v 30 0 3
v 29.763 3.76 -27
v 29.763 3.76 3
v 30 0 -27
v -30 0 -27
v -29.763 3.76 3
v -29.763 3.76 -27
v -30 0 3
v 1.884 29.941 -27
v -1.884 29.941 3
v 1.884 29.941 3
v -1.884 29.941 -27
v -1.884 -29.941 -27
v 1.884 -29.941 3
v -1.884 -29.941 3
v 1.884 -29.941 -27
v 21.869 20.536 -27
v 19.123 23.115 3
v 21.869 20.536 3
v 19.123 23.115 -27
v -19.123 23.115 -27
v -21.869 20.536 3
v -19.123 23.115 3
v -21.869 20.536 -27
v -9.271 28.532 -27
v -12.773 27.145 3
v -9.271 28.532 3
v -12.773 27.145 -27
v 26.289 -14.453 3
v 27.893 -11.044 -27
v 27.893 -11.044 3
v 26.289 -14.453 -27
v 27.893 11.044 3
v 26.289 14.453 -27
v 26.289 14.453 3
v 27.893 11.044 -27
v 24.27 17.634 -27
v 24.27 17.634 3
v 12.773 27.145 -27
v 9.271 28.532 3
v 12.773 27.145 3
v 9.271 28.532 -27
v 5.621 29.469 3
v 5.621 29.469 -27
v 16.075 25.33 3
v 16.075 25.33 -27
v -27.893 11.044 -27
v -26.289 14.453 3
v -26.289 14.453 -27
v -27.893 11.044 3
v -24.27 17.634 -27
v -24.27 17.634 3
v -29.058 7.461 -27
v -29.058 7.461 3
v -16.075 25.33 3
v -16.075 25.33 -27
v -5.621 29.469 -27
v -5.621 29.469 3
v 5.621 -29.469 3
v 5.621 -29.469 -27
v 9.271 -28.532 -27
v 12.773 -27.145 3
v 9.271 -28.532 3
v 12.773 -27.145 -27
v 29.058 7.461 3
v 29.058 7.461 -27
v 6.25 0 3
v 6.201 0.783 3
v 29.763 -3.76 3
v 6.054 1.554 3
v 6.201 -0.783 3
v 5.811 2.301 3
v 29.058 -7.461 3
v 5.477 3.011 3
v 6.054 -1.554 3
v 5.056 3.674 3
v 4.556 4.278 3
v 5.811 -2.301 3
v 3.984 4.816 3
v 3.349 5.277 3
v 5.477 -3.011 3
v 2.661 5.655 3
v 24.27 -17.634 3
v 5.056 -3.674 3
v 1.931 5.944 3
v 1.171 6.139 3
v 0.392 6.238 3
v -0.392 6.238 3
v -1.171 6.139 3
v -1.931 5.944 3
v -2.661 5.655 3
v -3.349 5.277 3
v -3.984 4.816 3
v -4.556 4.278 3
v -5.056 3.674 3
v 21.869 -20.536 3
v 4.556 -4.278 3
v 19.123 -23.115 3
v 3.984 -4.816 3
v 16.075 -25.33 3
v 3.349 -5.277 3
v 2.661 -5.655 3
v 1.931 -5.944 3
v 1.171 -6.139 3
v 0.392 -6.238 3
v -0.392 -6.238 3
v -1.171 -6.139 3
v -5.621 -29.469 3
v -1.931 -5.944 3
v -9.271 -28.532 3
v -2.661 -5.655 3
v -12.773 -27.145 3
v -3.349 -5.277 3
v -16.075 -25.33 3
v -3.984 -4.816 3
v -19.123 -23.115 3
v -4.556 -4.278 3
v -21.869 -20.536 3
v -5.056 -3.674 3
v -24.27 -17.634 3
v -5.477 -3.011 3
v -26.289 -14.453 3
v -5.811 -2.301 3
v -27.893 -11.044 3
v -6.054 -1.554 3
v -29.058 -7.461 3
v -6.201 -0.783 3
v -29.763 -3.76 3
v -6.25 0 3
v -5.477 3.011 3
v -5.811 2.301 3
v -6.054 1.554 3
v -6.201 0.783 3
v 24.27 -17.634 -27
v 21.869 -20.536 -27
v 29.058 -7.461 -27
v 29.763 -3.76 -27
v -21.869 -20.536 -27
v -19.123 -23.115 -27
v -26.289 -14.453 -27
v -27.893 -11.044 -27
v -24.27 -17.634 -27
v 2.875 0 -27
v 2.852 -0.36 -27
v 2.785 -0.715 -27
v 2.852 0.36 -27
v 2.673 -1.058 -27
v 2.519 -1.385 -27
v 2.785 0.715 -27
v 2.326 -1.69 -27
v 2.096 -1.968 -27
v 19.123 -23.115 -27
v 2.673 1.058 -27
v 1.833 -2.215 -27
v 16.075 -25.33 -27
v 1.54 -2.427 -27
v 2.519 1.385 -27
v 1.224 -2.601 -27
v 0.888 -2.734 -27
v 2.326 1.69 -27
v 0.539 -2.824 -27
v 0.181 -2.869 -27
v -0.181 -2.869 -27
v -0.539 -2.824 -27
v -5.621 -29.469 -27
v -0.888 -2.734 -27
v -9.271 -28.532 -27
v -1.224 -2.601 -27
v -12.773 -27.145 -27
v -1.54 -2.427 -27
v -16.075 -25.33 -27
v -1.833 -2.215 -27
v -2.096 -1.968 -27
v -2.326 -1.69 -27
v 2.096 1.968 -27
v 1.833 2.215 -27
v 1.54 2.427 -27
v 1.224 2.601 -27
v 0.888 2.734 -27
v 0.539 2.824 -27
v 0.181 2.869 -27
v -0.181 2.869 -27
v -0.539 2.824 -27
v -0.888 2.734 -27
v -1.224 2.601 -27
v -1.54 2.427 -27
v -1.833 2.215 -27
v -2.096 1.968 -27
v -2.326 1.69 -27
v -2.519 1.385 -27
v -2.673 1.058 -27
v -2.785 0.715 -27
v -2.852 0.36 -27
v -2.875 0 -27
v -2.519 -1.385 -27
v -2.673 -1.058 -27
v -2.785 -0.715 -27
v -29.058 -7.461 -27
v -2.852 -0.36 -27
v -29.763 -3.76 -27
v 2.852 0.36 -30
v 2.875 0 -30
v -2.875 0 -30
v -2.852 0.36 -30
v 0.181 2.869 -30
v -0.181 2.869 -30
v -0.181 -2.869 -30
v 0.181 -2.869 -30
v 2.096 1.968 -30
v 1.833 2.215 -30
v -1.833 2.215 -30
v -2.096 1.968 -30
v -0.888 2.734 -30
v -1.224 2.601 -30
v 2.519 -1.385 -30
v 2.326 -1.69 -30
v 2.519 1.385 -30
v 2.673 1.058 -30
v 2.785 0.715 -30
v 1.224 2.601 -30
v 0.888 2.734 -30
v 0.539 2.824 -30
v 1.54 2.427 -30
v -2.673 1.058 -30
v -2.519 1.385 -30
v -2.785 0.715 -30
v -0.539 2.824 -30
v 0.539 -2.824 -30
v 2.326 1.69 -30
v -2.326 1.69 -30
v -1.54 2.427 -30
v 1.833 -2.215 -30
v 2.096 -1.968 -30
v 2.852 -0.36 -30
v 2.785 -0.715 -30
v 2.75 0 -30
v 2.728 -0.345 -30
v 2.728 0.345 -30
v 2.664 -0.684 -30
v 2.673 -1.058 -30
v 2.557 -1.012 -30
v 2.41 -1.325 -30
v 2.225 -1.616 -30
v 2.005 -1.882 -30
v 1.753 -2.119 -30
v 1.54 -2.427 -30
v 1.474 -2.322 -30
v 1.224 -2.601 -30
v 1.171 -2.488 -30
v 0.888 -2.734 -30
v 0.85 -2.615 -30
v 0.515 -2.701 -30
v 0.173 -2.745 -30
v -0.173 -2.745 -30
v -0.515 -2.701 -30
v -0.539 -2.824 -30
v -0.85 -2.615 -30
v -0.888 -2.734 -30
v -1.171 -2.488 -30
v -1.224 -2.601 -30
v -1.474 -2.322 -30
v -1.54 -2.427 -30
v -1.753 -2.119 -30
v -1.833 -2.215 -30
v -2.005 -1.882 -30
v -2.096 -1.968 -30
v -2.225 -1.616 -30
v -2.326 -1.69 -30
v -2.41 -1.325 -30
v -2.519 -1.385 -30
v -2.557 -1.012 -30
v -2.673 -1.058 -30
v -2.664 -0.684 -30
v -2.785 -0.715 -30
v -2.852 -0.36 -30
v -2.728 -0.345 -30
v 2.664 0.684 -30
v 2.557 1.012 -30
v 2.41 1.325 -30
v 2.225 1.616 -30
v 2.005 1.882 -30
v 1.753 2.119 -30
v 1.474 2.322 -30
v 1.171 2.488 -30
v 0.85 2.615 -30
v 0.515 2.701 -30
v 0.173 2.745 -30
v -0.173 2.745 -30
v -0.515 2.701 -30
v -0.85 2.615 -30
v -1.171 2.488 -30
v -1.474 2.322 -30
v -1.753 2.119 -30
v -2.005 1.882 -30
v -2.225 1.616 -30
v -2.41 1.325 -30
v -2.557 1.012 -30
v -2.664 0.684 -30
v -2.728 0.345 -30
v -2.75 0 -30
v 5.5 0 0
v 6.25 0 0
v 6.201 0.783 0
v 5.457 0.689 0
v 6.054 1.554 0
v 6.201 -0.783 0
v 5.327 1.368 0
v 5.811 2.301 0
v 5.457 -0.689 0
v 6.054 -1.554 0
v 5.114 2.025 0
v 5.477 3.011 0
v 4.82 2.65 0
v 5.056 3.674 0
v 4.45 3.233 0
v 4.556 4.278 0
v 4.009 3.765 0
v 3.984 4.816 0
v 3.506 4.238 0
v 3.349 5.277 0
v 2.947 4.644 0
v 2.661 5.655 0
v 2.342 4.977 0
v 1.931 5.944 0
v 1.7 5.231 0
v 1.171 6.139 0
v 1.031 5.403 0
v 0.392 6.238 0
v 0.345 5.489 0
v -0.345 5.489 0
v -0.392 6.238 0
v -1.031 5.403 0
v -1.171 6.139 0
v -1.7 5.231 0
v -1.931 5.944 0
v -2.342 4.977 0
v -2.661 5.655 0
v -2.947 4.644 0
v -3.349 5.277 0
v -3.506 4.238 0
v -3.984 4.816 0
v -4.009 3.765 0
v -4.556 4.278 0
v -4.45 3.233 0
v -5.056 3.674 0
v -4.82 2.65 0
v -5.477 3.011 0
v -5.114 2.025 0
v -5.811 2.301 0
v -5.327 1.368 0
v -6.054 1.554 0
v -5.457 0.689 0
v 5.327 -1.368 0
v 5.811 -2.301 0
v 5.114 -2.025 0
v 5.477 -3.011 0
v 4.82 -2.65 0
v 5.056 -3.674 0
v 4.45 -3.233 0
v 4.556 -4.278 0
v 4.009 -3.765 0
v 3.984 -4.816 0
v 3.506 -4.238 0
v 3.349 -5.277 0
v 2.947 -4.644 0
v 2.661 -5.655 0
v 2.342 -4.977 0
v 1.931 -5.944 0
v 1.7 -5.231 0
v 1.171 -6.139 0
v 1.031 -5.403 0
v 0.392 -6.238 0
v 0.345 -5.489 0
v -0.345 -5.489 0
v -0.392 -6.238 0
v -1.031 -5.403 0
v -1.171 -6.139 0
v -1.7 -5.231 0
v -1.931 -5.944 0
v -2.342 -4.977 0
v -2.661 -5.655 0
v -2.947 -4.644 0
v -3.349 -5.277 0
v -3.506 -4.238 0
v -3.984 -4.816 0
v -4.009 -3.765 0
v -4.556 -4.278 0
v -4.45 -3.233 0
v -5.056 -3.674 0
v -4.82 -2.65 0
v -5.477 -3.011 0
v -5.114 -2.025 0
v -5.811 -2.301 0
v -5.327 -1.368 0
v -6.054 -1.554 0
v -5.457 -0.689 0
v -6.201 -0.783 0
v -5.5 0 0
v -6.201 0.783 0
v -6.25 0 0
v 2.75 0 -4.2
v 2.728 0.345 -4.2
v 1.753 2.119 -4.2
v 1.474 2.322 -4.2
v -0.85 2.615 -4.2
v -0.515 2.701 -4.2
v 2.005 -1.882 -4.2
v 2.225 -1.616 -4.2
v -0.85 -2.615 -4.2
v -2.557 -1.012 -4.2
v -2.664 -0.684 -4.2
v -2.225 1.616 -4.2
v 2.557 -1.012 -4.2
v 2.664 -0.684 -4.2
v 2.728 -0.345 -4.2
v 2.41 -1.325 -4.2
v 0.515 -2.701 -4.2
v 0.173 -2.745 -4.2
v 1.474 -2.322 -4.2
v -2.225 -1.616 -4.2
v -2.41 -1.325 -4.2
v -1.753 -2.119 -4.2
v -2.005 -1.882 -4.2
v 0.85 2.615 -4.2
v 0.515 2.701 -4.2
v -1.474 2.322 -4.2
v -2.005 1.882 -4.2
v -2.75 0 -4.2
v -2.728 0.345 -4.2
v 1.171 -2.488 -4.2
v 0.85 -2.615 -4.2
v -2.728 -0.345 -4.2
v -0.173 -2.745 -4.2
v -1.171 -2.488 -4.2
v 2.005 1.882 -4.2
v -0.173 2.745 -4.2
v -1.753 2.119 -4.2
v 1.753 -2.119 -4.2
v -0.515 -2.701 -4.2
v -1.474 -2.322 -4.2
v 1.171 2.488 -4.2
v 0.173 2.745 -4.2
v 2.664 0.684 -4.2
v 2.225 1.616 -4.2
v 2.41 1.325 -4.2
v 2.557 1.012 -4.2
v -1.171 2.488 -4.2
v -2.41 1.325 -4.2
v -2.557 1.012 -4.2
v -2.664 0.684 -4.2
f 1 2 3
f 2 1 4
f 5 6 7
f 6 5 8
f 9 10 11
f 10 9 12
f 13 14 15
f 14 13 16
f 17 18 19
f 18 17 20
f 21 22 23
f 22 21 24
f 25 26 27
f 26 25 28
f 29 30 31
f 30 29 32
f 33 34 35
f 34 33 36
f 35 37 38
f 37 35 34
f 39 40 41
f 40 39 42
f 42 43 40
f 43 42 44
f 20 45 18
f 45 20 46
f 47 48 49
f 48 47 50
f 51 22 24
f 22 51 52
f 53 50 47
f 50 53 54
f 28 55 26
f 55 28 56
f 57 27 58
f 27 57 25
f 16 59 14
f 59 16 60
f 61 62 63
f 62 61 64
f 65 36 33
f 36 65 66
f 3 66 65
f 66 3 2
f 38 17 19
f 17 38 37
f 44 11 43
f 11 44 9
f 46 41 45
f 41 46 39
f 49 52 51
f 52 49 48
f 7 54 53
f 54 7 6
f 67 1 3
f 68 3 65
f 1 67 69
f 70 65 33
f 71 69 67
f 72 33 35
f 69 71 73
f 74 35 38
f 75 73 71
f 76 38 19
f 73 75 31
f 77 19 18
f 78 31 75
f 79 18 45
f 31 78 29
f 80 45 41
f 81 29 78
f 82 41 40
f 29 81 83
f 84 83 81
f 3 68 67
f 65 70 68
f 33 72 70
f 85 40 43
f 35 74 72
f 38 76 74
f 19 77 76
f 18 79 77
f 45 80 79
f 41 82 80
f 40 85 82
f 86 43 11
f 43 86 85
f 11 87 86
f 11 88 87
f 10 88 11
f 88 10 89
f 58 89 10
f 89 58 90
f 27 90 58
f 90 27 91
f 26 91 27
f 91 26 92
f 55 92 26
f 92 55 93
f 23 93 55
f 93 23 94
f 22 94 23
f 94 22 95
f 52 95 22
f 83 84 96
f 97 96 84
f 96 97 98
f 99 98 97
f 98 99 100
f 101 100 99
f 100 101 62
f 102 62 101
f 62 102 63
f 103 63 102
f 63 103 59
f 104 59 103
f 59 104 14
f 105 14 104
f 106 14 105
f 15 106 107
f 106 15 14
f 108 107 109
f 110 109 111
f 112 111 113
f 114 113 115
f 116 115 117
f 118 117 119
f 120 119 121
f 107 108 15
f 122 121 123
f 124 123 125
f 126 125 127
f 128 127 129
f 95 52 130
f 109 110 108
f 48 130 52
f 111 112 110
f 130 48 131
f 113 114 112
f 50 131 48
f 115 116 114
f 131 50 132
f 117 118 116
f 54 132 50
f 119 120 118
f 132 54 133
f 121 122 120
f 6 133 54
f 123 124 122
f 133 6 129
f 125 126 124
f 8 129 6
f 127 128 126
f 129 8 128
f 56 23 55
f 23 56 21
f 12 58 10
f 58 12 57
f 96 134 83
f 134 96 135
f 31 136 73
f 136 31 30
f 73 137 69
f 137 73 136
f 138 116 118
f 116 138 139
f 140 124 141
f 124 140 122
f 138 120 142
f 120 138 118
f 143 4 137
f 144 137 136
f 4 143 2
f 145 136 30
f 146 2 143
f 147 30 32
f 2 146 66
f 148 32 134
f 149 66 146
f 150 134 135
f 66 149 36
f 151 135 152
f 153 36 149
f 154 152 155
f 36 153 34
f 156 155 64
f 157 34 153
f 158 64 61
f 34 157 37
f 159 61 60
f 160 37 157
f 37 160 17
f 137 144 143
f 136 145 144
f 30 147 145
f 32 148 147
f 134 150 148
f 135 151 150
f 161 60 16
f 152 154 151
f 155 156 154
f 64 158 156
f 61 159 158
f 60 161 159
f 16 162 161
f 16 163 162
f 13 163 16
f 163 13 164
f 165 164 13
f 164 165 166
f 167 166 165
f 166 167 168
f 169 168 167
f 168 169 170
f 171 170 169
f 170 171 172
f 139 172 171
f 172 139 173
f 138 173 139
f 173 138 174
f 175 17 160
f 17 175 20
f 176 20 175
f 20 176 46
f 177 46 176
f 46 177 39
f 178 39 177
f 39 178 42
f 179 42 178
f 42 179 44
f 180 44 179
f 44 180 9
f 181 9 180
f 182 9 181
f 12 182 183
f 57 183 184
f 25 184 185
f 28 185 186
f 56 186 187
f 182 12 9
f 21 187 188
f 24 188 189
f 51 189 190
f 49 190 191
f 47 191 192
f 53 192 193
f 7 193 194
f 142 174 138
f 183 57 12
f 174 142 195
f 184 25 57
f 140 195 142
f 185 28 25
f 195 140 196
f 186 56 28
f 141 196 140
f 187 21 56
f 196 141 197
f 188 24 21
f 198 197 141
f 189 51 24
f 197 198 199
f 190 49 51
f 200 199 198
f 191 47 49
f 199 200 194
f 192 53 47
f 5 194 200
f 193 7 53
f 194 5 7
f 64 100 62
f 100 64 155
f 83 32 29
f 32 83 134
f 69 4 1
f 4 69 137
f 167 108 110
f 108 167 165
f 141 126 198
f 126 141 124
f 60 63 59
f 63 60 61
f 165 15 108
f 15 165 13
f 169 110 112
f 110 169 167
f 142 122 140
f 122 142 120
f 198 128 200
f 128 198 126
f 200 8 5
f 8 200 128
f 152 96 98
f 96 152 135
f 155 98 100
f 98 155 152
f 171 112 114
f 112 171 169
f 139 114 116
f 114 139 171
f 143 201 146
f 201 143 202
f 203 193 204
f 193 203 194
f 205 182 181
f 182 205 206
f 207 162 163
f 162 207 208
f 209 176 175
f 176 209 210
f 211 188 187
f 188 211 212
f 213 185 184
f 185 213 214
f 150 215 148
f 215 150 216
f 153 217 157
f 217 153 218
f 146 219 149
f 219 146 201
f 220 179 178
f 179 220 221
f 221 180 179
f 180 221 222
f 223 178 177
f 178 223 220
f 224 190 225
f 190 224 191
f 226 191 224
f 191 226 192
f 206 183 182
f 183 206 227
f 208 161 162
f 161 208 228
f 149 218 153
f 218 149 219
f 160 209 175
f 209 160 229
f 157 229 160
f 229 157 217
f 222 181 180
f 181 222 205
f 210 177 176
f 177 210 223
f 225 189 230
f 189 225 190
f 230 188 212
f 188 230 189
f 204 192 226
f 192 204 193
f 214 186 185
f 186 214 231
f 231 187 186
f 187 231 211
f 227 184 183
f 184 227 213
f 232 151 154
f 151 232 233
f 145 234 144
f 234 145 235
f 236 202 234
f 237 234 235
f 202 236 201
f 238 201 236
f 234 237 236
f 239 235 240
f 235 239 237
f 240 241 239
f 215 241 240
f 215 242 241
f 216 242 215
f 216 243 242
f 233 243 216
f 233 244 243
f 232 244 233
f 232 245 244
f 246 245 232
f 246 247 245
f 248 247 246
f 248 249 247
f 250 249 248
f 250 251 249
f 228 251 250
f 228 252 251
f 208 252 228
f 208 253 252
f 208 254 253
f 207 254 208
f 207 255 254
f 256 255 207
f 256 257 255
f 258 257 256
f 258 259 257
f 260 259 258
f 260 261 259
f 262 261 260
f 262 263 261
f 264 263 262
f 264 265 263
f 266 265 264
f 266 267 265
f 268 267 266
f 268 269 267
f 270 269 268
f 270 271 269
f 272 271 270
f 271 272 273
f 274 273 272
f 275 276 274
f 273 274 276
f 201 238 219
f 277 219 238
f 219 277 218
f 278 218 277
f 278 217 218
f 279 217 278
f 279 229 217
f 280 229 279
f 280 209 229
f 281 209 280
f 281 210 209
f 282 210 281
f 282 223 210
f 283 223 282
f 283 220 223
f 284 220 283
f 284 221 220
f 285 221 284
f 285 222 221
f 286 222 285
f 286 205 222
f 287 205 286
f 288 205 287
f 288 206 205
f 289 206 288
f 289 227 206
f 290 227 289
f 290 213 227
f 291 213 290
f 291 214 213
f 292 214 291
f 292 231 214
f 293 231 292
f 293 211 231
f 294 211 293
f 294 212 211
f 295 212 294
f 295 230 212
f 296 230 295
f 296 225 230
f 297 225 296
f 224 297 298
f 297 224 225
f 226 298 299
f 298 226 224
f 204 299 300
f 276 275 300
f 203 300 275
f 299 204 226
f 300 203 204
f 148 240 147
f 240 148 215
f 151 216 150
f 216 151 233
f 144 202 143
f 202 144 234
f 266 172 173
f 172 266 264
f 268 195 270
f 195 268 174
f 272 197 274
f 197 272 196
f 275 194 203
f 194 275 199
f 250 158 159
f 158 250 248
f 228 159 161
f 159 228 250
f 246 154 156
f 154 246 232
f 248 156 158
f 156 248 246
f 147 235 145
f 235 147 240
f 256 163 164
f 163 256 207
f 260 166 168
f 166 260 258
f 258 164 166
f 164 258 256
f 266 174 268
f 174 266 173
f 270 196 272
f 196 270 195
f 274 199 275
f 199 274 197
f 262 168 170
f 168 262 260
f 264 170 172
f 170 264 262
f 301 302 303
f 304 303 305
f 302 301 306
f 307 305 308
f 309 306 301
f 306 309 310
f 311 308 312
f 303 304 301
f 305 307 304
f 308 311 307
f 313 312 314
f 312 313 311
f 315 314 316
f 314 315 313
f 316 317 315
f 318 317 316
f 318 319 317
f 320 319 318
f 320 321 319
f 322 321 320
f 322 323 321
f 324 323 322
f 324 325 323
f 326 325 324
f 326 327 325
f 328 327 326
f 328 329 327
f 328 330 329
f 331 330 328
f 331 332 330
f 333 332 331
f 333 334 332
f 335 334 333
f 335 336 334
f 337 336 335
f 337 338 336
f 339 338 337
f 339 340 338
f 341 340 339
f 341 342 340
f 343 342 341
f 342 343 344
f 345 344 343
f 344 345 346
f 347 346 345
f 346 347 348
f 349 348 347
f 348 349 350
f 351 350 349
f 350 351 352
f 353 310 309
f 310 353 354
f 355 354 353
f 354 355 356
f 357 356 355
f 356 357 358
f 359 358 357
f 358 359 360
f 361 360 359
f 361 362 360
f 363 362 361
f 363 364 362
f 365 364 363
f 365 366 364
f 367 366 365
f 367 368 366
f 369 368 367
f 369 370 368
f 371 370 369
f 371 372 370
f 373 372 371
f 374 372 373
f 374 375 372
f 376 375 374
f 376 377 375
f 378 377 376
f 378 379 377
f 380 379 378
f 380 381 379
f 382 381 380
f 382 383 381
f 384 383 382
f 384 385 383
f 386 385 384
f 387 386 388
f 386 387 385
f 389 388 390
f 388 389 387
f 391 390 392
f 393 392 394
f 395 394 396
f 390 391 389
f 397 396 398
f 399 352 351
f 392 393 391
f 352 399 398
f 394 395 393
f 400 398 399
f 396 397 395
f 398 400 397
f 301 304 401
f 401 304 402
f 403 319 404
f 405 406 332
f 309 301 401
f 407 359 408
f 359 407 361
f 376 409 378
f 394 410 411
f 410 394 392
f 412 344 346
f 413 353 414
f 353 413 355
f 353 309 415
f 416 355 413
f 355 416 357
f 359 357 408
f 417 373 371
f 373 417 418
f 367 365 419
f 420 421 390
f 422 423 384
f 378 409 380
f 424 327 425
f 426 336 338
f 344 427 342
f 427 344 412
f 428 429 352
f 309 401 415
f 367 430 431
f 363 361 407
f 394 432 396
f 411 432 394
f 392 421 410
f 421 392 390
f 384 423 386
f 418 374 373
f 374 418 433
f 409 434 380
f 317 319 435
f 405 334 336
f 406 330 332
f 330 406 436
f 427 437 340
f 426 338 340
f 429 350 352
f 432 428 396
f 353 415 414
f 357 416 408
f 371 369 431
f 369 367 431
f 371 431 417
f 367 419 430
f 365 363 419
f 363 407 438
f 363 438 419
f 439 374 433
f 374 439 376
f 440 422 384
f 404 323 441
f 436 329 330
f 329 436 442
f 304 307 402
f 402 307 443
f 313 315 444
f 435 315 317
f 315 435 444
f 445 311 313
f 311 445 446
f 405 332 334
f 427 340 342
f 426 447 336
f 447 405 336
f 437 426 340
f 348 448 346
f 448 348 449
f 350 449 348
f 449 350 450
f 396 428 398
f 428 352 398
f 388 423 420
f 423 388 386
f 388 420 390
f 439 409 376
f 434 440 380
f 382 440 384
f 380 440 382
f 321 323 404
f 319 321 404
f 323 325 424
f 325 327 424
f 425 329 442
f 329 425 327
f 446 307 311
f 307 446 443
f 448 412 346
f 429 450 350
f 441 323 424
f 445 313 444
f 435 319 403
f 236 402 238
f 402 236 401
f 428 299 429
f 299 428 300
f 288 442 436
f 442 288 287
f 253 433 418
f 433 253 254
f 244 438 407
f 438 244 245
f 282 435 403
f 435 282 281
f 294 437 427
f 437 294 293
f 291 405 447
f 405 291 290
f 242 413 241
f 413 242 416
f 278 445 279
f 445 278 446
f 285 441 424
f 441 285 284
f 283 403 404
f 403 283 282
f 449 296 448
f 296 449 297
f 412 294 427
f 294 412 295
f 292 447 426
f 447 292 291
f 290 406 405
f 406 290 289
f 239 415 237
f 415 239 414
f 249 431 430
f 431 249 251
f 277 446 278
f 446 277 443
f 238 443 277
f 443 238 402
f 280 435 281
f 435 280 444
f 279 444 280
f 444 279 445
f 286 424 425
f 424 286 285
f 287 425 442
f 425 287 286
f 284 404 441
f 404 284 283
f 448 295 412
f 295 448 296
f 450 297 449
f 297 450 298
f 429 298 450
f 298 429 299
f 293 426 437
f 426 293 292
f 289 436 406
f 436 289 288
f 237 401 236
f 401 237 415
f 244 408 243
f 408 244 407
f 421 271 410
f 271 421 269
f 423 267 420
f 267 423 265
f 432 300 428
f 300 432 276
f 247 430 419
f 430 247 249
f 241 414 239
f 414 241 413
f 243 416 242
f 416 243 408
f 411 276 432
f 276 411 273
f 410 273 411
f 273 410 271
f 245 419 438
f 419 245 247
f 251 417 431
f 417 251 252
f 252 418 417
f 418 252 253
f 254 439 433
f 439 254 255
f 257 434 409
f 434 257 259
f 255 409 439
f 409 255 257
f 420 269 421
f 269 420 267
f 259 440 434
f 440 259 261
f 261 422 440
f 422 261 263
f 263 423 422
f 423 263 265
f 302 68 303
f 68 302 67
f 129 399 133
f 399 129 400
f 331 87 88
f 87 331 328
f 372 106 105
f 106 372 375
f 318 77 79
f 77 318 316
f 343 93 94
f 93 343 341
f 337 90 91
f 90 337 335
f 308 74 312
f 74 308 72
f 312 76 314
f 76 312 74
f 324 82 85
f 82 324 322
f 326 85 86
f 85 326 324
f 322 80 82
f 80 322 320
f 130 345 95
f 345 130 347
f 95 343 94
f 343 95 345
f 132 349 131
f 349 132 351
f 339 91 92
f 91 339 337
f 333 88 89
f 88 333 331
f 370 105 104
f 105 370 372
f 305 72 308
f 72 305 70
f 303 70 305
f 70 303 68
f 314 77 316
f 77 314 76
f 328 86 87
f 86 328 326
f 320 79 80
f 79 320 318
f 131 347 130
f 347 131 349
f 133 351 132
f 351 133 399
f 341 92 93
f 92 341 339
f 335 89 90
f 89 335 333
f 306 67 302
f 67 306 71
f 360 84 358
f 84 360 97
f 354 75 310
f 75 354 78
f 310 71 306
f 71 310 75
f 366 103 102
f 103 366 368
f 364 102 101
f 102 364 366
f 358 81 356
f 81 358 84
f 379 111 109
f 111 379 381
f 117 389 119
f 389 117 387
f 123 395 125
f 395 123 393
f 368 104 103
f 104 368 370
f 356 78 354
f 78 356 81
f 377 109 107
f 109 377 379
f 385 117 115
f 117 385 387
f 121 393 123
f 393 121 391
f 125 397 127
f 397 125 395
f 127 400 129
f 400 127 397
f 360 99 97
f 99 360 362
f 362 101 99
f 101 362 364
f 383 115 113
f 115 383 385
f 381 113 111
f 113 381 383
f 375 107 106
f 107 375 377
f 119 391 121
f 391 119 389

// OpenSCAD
$fn = 50;


difference() {
	union() {
		translate(v = [0, 0, -27.0000000000]) {
			cylinder(h = 30, r = 30.0000000000);
		}
		#translate(v = [0, 0, -30.0000000000]) {
			cylinder(h = 30, r = 2.8750000000);
		}
	}
	union() {
		translate(v = [0, 0, 0]) {
			rotate(a = [0, 0, 0]) {
				difference() {
					union() {
						translate(v = [0, 0, -30.0000000000]) {
							cylinder(h = 30, r = 2.2500000000);
						}
						translate(v = [0, 0, -4.2000000000]) {
							cylinder(h = 4.2000000000, r1 = 2.7500000000, r2 = 5.5000000000);
						}
						translate(v = [0, 0, -30.0000000000]) {
							cylinder(h = 30, r = 2.7500000000);
						}
						translate(v = [0, 0, -30.0000000000]) {
							cylinder(h = 30, r = 2.2500000000);
						}
					}
					union();
				}
			}
		}
		#cylinder(h = 3, r = 6.2500000000);
	}
}
